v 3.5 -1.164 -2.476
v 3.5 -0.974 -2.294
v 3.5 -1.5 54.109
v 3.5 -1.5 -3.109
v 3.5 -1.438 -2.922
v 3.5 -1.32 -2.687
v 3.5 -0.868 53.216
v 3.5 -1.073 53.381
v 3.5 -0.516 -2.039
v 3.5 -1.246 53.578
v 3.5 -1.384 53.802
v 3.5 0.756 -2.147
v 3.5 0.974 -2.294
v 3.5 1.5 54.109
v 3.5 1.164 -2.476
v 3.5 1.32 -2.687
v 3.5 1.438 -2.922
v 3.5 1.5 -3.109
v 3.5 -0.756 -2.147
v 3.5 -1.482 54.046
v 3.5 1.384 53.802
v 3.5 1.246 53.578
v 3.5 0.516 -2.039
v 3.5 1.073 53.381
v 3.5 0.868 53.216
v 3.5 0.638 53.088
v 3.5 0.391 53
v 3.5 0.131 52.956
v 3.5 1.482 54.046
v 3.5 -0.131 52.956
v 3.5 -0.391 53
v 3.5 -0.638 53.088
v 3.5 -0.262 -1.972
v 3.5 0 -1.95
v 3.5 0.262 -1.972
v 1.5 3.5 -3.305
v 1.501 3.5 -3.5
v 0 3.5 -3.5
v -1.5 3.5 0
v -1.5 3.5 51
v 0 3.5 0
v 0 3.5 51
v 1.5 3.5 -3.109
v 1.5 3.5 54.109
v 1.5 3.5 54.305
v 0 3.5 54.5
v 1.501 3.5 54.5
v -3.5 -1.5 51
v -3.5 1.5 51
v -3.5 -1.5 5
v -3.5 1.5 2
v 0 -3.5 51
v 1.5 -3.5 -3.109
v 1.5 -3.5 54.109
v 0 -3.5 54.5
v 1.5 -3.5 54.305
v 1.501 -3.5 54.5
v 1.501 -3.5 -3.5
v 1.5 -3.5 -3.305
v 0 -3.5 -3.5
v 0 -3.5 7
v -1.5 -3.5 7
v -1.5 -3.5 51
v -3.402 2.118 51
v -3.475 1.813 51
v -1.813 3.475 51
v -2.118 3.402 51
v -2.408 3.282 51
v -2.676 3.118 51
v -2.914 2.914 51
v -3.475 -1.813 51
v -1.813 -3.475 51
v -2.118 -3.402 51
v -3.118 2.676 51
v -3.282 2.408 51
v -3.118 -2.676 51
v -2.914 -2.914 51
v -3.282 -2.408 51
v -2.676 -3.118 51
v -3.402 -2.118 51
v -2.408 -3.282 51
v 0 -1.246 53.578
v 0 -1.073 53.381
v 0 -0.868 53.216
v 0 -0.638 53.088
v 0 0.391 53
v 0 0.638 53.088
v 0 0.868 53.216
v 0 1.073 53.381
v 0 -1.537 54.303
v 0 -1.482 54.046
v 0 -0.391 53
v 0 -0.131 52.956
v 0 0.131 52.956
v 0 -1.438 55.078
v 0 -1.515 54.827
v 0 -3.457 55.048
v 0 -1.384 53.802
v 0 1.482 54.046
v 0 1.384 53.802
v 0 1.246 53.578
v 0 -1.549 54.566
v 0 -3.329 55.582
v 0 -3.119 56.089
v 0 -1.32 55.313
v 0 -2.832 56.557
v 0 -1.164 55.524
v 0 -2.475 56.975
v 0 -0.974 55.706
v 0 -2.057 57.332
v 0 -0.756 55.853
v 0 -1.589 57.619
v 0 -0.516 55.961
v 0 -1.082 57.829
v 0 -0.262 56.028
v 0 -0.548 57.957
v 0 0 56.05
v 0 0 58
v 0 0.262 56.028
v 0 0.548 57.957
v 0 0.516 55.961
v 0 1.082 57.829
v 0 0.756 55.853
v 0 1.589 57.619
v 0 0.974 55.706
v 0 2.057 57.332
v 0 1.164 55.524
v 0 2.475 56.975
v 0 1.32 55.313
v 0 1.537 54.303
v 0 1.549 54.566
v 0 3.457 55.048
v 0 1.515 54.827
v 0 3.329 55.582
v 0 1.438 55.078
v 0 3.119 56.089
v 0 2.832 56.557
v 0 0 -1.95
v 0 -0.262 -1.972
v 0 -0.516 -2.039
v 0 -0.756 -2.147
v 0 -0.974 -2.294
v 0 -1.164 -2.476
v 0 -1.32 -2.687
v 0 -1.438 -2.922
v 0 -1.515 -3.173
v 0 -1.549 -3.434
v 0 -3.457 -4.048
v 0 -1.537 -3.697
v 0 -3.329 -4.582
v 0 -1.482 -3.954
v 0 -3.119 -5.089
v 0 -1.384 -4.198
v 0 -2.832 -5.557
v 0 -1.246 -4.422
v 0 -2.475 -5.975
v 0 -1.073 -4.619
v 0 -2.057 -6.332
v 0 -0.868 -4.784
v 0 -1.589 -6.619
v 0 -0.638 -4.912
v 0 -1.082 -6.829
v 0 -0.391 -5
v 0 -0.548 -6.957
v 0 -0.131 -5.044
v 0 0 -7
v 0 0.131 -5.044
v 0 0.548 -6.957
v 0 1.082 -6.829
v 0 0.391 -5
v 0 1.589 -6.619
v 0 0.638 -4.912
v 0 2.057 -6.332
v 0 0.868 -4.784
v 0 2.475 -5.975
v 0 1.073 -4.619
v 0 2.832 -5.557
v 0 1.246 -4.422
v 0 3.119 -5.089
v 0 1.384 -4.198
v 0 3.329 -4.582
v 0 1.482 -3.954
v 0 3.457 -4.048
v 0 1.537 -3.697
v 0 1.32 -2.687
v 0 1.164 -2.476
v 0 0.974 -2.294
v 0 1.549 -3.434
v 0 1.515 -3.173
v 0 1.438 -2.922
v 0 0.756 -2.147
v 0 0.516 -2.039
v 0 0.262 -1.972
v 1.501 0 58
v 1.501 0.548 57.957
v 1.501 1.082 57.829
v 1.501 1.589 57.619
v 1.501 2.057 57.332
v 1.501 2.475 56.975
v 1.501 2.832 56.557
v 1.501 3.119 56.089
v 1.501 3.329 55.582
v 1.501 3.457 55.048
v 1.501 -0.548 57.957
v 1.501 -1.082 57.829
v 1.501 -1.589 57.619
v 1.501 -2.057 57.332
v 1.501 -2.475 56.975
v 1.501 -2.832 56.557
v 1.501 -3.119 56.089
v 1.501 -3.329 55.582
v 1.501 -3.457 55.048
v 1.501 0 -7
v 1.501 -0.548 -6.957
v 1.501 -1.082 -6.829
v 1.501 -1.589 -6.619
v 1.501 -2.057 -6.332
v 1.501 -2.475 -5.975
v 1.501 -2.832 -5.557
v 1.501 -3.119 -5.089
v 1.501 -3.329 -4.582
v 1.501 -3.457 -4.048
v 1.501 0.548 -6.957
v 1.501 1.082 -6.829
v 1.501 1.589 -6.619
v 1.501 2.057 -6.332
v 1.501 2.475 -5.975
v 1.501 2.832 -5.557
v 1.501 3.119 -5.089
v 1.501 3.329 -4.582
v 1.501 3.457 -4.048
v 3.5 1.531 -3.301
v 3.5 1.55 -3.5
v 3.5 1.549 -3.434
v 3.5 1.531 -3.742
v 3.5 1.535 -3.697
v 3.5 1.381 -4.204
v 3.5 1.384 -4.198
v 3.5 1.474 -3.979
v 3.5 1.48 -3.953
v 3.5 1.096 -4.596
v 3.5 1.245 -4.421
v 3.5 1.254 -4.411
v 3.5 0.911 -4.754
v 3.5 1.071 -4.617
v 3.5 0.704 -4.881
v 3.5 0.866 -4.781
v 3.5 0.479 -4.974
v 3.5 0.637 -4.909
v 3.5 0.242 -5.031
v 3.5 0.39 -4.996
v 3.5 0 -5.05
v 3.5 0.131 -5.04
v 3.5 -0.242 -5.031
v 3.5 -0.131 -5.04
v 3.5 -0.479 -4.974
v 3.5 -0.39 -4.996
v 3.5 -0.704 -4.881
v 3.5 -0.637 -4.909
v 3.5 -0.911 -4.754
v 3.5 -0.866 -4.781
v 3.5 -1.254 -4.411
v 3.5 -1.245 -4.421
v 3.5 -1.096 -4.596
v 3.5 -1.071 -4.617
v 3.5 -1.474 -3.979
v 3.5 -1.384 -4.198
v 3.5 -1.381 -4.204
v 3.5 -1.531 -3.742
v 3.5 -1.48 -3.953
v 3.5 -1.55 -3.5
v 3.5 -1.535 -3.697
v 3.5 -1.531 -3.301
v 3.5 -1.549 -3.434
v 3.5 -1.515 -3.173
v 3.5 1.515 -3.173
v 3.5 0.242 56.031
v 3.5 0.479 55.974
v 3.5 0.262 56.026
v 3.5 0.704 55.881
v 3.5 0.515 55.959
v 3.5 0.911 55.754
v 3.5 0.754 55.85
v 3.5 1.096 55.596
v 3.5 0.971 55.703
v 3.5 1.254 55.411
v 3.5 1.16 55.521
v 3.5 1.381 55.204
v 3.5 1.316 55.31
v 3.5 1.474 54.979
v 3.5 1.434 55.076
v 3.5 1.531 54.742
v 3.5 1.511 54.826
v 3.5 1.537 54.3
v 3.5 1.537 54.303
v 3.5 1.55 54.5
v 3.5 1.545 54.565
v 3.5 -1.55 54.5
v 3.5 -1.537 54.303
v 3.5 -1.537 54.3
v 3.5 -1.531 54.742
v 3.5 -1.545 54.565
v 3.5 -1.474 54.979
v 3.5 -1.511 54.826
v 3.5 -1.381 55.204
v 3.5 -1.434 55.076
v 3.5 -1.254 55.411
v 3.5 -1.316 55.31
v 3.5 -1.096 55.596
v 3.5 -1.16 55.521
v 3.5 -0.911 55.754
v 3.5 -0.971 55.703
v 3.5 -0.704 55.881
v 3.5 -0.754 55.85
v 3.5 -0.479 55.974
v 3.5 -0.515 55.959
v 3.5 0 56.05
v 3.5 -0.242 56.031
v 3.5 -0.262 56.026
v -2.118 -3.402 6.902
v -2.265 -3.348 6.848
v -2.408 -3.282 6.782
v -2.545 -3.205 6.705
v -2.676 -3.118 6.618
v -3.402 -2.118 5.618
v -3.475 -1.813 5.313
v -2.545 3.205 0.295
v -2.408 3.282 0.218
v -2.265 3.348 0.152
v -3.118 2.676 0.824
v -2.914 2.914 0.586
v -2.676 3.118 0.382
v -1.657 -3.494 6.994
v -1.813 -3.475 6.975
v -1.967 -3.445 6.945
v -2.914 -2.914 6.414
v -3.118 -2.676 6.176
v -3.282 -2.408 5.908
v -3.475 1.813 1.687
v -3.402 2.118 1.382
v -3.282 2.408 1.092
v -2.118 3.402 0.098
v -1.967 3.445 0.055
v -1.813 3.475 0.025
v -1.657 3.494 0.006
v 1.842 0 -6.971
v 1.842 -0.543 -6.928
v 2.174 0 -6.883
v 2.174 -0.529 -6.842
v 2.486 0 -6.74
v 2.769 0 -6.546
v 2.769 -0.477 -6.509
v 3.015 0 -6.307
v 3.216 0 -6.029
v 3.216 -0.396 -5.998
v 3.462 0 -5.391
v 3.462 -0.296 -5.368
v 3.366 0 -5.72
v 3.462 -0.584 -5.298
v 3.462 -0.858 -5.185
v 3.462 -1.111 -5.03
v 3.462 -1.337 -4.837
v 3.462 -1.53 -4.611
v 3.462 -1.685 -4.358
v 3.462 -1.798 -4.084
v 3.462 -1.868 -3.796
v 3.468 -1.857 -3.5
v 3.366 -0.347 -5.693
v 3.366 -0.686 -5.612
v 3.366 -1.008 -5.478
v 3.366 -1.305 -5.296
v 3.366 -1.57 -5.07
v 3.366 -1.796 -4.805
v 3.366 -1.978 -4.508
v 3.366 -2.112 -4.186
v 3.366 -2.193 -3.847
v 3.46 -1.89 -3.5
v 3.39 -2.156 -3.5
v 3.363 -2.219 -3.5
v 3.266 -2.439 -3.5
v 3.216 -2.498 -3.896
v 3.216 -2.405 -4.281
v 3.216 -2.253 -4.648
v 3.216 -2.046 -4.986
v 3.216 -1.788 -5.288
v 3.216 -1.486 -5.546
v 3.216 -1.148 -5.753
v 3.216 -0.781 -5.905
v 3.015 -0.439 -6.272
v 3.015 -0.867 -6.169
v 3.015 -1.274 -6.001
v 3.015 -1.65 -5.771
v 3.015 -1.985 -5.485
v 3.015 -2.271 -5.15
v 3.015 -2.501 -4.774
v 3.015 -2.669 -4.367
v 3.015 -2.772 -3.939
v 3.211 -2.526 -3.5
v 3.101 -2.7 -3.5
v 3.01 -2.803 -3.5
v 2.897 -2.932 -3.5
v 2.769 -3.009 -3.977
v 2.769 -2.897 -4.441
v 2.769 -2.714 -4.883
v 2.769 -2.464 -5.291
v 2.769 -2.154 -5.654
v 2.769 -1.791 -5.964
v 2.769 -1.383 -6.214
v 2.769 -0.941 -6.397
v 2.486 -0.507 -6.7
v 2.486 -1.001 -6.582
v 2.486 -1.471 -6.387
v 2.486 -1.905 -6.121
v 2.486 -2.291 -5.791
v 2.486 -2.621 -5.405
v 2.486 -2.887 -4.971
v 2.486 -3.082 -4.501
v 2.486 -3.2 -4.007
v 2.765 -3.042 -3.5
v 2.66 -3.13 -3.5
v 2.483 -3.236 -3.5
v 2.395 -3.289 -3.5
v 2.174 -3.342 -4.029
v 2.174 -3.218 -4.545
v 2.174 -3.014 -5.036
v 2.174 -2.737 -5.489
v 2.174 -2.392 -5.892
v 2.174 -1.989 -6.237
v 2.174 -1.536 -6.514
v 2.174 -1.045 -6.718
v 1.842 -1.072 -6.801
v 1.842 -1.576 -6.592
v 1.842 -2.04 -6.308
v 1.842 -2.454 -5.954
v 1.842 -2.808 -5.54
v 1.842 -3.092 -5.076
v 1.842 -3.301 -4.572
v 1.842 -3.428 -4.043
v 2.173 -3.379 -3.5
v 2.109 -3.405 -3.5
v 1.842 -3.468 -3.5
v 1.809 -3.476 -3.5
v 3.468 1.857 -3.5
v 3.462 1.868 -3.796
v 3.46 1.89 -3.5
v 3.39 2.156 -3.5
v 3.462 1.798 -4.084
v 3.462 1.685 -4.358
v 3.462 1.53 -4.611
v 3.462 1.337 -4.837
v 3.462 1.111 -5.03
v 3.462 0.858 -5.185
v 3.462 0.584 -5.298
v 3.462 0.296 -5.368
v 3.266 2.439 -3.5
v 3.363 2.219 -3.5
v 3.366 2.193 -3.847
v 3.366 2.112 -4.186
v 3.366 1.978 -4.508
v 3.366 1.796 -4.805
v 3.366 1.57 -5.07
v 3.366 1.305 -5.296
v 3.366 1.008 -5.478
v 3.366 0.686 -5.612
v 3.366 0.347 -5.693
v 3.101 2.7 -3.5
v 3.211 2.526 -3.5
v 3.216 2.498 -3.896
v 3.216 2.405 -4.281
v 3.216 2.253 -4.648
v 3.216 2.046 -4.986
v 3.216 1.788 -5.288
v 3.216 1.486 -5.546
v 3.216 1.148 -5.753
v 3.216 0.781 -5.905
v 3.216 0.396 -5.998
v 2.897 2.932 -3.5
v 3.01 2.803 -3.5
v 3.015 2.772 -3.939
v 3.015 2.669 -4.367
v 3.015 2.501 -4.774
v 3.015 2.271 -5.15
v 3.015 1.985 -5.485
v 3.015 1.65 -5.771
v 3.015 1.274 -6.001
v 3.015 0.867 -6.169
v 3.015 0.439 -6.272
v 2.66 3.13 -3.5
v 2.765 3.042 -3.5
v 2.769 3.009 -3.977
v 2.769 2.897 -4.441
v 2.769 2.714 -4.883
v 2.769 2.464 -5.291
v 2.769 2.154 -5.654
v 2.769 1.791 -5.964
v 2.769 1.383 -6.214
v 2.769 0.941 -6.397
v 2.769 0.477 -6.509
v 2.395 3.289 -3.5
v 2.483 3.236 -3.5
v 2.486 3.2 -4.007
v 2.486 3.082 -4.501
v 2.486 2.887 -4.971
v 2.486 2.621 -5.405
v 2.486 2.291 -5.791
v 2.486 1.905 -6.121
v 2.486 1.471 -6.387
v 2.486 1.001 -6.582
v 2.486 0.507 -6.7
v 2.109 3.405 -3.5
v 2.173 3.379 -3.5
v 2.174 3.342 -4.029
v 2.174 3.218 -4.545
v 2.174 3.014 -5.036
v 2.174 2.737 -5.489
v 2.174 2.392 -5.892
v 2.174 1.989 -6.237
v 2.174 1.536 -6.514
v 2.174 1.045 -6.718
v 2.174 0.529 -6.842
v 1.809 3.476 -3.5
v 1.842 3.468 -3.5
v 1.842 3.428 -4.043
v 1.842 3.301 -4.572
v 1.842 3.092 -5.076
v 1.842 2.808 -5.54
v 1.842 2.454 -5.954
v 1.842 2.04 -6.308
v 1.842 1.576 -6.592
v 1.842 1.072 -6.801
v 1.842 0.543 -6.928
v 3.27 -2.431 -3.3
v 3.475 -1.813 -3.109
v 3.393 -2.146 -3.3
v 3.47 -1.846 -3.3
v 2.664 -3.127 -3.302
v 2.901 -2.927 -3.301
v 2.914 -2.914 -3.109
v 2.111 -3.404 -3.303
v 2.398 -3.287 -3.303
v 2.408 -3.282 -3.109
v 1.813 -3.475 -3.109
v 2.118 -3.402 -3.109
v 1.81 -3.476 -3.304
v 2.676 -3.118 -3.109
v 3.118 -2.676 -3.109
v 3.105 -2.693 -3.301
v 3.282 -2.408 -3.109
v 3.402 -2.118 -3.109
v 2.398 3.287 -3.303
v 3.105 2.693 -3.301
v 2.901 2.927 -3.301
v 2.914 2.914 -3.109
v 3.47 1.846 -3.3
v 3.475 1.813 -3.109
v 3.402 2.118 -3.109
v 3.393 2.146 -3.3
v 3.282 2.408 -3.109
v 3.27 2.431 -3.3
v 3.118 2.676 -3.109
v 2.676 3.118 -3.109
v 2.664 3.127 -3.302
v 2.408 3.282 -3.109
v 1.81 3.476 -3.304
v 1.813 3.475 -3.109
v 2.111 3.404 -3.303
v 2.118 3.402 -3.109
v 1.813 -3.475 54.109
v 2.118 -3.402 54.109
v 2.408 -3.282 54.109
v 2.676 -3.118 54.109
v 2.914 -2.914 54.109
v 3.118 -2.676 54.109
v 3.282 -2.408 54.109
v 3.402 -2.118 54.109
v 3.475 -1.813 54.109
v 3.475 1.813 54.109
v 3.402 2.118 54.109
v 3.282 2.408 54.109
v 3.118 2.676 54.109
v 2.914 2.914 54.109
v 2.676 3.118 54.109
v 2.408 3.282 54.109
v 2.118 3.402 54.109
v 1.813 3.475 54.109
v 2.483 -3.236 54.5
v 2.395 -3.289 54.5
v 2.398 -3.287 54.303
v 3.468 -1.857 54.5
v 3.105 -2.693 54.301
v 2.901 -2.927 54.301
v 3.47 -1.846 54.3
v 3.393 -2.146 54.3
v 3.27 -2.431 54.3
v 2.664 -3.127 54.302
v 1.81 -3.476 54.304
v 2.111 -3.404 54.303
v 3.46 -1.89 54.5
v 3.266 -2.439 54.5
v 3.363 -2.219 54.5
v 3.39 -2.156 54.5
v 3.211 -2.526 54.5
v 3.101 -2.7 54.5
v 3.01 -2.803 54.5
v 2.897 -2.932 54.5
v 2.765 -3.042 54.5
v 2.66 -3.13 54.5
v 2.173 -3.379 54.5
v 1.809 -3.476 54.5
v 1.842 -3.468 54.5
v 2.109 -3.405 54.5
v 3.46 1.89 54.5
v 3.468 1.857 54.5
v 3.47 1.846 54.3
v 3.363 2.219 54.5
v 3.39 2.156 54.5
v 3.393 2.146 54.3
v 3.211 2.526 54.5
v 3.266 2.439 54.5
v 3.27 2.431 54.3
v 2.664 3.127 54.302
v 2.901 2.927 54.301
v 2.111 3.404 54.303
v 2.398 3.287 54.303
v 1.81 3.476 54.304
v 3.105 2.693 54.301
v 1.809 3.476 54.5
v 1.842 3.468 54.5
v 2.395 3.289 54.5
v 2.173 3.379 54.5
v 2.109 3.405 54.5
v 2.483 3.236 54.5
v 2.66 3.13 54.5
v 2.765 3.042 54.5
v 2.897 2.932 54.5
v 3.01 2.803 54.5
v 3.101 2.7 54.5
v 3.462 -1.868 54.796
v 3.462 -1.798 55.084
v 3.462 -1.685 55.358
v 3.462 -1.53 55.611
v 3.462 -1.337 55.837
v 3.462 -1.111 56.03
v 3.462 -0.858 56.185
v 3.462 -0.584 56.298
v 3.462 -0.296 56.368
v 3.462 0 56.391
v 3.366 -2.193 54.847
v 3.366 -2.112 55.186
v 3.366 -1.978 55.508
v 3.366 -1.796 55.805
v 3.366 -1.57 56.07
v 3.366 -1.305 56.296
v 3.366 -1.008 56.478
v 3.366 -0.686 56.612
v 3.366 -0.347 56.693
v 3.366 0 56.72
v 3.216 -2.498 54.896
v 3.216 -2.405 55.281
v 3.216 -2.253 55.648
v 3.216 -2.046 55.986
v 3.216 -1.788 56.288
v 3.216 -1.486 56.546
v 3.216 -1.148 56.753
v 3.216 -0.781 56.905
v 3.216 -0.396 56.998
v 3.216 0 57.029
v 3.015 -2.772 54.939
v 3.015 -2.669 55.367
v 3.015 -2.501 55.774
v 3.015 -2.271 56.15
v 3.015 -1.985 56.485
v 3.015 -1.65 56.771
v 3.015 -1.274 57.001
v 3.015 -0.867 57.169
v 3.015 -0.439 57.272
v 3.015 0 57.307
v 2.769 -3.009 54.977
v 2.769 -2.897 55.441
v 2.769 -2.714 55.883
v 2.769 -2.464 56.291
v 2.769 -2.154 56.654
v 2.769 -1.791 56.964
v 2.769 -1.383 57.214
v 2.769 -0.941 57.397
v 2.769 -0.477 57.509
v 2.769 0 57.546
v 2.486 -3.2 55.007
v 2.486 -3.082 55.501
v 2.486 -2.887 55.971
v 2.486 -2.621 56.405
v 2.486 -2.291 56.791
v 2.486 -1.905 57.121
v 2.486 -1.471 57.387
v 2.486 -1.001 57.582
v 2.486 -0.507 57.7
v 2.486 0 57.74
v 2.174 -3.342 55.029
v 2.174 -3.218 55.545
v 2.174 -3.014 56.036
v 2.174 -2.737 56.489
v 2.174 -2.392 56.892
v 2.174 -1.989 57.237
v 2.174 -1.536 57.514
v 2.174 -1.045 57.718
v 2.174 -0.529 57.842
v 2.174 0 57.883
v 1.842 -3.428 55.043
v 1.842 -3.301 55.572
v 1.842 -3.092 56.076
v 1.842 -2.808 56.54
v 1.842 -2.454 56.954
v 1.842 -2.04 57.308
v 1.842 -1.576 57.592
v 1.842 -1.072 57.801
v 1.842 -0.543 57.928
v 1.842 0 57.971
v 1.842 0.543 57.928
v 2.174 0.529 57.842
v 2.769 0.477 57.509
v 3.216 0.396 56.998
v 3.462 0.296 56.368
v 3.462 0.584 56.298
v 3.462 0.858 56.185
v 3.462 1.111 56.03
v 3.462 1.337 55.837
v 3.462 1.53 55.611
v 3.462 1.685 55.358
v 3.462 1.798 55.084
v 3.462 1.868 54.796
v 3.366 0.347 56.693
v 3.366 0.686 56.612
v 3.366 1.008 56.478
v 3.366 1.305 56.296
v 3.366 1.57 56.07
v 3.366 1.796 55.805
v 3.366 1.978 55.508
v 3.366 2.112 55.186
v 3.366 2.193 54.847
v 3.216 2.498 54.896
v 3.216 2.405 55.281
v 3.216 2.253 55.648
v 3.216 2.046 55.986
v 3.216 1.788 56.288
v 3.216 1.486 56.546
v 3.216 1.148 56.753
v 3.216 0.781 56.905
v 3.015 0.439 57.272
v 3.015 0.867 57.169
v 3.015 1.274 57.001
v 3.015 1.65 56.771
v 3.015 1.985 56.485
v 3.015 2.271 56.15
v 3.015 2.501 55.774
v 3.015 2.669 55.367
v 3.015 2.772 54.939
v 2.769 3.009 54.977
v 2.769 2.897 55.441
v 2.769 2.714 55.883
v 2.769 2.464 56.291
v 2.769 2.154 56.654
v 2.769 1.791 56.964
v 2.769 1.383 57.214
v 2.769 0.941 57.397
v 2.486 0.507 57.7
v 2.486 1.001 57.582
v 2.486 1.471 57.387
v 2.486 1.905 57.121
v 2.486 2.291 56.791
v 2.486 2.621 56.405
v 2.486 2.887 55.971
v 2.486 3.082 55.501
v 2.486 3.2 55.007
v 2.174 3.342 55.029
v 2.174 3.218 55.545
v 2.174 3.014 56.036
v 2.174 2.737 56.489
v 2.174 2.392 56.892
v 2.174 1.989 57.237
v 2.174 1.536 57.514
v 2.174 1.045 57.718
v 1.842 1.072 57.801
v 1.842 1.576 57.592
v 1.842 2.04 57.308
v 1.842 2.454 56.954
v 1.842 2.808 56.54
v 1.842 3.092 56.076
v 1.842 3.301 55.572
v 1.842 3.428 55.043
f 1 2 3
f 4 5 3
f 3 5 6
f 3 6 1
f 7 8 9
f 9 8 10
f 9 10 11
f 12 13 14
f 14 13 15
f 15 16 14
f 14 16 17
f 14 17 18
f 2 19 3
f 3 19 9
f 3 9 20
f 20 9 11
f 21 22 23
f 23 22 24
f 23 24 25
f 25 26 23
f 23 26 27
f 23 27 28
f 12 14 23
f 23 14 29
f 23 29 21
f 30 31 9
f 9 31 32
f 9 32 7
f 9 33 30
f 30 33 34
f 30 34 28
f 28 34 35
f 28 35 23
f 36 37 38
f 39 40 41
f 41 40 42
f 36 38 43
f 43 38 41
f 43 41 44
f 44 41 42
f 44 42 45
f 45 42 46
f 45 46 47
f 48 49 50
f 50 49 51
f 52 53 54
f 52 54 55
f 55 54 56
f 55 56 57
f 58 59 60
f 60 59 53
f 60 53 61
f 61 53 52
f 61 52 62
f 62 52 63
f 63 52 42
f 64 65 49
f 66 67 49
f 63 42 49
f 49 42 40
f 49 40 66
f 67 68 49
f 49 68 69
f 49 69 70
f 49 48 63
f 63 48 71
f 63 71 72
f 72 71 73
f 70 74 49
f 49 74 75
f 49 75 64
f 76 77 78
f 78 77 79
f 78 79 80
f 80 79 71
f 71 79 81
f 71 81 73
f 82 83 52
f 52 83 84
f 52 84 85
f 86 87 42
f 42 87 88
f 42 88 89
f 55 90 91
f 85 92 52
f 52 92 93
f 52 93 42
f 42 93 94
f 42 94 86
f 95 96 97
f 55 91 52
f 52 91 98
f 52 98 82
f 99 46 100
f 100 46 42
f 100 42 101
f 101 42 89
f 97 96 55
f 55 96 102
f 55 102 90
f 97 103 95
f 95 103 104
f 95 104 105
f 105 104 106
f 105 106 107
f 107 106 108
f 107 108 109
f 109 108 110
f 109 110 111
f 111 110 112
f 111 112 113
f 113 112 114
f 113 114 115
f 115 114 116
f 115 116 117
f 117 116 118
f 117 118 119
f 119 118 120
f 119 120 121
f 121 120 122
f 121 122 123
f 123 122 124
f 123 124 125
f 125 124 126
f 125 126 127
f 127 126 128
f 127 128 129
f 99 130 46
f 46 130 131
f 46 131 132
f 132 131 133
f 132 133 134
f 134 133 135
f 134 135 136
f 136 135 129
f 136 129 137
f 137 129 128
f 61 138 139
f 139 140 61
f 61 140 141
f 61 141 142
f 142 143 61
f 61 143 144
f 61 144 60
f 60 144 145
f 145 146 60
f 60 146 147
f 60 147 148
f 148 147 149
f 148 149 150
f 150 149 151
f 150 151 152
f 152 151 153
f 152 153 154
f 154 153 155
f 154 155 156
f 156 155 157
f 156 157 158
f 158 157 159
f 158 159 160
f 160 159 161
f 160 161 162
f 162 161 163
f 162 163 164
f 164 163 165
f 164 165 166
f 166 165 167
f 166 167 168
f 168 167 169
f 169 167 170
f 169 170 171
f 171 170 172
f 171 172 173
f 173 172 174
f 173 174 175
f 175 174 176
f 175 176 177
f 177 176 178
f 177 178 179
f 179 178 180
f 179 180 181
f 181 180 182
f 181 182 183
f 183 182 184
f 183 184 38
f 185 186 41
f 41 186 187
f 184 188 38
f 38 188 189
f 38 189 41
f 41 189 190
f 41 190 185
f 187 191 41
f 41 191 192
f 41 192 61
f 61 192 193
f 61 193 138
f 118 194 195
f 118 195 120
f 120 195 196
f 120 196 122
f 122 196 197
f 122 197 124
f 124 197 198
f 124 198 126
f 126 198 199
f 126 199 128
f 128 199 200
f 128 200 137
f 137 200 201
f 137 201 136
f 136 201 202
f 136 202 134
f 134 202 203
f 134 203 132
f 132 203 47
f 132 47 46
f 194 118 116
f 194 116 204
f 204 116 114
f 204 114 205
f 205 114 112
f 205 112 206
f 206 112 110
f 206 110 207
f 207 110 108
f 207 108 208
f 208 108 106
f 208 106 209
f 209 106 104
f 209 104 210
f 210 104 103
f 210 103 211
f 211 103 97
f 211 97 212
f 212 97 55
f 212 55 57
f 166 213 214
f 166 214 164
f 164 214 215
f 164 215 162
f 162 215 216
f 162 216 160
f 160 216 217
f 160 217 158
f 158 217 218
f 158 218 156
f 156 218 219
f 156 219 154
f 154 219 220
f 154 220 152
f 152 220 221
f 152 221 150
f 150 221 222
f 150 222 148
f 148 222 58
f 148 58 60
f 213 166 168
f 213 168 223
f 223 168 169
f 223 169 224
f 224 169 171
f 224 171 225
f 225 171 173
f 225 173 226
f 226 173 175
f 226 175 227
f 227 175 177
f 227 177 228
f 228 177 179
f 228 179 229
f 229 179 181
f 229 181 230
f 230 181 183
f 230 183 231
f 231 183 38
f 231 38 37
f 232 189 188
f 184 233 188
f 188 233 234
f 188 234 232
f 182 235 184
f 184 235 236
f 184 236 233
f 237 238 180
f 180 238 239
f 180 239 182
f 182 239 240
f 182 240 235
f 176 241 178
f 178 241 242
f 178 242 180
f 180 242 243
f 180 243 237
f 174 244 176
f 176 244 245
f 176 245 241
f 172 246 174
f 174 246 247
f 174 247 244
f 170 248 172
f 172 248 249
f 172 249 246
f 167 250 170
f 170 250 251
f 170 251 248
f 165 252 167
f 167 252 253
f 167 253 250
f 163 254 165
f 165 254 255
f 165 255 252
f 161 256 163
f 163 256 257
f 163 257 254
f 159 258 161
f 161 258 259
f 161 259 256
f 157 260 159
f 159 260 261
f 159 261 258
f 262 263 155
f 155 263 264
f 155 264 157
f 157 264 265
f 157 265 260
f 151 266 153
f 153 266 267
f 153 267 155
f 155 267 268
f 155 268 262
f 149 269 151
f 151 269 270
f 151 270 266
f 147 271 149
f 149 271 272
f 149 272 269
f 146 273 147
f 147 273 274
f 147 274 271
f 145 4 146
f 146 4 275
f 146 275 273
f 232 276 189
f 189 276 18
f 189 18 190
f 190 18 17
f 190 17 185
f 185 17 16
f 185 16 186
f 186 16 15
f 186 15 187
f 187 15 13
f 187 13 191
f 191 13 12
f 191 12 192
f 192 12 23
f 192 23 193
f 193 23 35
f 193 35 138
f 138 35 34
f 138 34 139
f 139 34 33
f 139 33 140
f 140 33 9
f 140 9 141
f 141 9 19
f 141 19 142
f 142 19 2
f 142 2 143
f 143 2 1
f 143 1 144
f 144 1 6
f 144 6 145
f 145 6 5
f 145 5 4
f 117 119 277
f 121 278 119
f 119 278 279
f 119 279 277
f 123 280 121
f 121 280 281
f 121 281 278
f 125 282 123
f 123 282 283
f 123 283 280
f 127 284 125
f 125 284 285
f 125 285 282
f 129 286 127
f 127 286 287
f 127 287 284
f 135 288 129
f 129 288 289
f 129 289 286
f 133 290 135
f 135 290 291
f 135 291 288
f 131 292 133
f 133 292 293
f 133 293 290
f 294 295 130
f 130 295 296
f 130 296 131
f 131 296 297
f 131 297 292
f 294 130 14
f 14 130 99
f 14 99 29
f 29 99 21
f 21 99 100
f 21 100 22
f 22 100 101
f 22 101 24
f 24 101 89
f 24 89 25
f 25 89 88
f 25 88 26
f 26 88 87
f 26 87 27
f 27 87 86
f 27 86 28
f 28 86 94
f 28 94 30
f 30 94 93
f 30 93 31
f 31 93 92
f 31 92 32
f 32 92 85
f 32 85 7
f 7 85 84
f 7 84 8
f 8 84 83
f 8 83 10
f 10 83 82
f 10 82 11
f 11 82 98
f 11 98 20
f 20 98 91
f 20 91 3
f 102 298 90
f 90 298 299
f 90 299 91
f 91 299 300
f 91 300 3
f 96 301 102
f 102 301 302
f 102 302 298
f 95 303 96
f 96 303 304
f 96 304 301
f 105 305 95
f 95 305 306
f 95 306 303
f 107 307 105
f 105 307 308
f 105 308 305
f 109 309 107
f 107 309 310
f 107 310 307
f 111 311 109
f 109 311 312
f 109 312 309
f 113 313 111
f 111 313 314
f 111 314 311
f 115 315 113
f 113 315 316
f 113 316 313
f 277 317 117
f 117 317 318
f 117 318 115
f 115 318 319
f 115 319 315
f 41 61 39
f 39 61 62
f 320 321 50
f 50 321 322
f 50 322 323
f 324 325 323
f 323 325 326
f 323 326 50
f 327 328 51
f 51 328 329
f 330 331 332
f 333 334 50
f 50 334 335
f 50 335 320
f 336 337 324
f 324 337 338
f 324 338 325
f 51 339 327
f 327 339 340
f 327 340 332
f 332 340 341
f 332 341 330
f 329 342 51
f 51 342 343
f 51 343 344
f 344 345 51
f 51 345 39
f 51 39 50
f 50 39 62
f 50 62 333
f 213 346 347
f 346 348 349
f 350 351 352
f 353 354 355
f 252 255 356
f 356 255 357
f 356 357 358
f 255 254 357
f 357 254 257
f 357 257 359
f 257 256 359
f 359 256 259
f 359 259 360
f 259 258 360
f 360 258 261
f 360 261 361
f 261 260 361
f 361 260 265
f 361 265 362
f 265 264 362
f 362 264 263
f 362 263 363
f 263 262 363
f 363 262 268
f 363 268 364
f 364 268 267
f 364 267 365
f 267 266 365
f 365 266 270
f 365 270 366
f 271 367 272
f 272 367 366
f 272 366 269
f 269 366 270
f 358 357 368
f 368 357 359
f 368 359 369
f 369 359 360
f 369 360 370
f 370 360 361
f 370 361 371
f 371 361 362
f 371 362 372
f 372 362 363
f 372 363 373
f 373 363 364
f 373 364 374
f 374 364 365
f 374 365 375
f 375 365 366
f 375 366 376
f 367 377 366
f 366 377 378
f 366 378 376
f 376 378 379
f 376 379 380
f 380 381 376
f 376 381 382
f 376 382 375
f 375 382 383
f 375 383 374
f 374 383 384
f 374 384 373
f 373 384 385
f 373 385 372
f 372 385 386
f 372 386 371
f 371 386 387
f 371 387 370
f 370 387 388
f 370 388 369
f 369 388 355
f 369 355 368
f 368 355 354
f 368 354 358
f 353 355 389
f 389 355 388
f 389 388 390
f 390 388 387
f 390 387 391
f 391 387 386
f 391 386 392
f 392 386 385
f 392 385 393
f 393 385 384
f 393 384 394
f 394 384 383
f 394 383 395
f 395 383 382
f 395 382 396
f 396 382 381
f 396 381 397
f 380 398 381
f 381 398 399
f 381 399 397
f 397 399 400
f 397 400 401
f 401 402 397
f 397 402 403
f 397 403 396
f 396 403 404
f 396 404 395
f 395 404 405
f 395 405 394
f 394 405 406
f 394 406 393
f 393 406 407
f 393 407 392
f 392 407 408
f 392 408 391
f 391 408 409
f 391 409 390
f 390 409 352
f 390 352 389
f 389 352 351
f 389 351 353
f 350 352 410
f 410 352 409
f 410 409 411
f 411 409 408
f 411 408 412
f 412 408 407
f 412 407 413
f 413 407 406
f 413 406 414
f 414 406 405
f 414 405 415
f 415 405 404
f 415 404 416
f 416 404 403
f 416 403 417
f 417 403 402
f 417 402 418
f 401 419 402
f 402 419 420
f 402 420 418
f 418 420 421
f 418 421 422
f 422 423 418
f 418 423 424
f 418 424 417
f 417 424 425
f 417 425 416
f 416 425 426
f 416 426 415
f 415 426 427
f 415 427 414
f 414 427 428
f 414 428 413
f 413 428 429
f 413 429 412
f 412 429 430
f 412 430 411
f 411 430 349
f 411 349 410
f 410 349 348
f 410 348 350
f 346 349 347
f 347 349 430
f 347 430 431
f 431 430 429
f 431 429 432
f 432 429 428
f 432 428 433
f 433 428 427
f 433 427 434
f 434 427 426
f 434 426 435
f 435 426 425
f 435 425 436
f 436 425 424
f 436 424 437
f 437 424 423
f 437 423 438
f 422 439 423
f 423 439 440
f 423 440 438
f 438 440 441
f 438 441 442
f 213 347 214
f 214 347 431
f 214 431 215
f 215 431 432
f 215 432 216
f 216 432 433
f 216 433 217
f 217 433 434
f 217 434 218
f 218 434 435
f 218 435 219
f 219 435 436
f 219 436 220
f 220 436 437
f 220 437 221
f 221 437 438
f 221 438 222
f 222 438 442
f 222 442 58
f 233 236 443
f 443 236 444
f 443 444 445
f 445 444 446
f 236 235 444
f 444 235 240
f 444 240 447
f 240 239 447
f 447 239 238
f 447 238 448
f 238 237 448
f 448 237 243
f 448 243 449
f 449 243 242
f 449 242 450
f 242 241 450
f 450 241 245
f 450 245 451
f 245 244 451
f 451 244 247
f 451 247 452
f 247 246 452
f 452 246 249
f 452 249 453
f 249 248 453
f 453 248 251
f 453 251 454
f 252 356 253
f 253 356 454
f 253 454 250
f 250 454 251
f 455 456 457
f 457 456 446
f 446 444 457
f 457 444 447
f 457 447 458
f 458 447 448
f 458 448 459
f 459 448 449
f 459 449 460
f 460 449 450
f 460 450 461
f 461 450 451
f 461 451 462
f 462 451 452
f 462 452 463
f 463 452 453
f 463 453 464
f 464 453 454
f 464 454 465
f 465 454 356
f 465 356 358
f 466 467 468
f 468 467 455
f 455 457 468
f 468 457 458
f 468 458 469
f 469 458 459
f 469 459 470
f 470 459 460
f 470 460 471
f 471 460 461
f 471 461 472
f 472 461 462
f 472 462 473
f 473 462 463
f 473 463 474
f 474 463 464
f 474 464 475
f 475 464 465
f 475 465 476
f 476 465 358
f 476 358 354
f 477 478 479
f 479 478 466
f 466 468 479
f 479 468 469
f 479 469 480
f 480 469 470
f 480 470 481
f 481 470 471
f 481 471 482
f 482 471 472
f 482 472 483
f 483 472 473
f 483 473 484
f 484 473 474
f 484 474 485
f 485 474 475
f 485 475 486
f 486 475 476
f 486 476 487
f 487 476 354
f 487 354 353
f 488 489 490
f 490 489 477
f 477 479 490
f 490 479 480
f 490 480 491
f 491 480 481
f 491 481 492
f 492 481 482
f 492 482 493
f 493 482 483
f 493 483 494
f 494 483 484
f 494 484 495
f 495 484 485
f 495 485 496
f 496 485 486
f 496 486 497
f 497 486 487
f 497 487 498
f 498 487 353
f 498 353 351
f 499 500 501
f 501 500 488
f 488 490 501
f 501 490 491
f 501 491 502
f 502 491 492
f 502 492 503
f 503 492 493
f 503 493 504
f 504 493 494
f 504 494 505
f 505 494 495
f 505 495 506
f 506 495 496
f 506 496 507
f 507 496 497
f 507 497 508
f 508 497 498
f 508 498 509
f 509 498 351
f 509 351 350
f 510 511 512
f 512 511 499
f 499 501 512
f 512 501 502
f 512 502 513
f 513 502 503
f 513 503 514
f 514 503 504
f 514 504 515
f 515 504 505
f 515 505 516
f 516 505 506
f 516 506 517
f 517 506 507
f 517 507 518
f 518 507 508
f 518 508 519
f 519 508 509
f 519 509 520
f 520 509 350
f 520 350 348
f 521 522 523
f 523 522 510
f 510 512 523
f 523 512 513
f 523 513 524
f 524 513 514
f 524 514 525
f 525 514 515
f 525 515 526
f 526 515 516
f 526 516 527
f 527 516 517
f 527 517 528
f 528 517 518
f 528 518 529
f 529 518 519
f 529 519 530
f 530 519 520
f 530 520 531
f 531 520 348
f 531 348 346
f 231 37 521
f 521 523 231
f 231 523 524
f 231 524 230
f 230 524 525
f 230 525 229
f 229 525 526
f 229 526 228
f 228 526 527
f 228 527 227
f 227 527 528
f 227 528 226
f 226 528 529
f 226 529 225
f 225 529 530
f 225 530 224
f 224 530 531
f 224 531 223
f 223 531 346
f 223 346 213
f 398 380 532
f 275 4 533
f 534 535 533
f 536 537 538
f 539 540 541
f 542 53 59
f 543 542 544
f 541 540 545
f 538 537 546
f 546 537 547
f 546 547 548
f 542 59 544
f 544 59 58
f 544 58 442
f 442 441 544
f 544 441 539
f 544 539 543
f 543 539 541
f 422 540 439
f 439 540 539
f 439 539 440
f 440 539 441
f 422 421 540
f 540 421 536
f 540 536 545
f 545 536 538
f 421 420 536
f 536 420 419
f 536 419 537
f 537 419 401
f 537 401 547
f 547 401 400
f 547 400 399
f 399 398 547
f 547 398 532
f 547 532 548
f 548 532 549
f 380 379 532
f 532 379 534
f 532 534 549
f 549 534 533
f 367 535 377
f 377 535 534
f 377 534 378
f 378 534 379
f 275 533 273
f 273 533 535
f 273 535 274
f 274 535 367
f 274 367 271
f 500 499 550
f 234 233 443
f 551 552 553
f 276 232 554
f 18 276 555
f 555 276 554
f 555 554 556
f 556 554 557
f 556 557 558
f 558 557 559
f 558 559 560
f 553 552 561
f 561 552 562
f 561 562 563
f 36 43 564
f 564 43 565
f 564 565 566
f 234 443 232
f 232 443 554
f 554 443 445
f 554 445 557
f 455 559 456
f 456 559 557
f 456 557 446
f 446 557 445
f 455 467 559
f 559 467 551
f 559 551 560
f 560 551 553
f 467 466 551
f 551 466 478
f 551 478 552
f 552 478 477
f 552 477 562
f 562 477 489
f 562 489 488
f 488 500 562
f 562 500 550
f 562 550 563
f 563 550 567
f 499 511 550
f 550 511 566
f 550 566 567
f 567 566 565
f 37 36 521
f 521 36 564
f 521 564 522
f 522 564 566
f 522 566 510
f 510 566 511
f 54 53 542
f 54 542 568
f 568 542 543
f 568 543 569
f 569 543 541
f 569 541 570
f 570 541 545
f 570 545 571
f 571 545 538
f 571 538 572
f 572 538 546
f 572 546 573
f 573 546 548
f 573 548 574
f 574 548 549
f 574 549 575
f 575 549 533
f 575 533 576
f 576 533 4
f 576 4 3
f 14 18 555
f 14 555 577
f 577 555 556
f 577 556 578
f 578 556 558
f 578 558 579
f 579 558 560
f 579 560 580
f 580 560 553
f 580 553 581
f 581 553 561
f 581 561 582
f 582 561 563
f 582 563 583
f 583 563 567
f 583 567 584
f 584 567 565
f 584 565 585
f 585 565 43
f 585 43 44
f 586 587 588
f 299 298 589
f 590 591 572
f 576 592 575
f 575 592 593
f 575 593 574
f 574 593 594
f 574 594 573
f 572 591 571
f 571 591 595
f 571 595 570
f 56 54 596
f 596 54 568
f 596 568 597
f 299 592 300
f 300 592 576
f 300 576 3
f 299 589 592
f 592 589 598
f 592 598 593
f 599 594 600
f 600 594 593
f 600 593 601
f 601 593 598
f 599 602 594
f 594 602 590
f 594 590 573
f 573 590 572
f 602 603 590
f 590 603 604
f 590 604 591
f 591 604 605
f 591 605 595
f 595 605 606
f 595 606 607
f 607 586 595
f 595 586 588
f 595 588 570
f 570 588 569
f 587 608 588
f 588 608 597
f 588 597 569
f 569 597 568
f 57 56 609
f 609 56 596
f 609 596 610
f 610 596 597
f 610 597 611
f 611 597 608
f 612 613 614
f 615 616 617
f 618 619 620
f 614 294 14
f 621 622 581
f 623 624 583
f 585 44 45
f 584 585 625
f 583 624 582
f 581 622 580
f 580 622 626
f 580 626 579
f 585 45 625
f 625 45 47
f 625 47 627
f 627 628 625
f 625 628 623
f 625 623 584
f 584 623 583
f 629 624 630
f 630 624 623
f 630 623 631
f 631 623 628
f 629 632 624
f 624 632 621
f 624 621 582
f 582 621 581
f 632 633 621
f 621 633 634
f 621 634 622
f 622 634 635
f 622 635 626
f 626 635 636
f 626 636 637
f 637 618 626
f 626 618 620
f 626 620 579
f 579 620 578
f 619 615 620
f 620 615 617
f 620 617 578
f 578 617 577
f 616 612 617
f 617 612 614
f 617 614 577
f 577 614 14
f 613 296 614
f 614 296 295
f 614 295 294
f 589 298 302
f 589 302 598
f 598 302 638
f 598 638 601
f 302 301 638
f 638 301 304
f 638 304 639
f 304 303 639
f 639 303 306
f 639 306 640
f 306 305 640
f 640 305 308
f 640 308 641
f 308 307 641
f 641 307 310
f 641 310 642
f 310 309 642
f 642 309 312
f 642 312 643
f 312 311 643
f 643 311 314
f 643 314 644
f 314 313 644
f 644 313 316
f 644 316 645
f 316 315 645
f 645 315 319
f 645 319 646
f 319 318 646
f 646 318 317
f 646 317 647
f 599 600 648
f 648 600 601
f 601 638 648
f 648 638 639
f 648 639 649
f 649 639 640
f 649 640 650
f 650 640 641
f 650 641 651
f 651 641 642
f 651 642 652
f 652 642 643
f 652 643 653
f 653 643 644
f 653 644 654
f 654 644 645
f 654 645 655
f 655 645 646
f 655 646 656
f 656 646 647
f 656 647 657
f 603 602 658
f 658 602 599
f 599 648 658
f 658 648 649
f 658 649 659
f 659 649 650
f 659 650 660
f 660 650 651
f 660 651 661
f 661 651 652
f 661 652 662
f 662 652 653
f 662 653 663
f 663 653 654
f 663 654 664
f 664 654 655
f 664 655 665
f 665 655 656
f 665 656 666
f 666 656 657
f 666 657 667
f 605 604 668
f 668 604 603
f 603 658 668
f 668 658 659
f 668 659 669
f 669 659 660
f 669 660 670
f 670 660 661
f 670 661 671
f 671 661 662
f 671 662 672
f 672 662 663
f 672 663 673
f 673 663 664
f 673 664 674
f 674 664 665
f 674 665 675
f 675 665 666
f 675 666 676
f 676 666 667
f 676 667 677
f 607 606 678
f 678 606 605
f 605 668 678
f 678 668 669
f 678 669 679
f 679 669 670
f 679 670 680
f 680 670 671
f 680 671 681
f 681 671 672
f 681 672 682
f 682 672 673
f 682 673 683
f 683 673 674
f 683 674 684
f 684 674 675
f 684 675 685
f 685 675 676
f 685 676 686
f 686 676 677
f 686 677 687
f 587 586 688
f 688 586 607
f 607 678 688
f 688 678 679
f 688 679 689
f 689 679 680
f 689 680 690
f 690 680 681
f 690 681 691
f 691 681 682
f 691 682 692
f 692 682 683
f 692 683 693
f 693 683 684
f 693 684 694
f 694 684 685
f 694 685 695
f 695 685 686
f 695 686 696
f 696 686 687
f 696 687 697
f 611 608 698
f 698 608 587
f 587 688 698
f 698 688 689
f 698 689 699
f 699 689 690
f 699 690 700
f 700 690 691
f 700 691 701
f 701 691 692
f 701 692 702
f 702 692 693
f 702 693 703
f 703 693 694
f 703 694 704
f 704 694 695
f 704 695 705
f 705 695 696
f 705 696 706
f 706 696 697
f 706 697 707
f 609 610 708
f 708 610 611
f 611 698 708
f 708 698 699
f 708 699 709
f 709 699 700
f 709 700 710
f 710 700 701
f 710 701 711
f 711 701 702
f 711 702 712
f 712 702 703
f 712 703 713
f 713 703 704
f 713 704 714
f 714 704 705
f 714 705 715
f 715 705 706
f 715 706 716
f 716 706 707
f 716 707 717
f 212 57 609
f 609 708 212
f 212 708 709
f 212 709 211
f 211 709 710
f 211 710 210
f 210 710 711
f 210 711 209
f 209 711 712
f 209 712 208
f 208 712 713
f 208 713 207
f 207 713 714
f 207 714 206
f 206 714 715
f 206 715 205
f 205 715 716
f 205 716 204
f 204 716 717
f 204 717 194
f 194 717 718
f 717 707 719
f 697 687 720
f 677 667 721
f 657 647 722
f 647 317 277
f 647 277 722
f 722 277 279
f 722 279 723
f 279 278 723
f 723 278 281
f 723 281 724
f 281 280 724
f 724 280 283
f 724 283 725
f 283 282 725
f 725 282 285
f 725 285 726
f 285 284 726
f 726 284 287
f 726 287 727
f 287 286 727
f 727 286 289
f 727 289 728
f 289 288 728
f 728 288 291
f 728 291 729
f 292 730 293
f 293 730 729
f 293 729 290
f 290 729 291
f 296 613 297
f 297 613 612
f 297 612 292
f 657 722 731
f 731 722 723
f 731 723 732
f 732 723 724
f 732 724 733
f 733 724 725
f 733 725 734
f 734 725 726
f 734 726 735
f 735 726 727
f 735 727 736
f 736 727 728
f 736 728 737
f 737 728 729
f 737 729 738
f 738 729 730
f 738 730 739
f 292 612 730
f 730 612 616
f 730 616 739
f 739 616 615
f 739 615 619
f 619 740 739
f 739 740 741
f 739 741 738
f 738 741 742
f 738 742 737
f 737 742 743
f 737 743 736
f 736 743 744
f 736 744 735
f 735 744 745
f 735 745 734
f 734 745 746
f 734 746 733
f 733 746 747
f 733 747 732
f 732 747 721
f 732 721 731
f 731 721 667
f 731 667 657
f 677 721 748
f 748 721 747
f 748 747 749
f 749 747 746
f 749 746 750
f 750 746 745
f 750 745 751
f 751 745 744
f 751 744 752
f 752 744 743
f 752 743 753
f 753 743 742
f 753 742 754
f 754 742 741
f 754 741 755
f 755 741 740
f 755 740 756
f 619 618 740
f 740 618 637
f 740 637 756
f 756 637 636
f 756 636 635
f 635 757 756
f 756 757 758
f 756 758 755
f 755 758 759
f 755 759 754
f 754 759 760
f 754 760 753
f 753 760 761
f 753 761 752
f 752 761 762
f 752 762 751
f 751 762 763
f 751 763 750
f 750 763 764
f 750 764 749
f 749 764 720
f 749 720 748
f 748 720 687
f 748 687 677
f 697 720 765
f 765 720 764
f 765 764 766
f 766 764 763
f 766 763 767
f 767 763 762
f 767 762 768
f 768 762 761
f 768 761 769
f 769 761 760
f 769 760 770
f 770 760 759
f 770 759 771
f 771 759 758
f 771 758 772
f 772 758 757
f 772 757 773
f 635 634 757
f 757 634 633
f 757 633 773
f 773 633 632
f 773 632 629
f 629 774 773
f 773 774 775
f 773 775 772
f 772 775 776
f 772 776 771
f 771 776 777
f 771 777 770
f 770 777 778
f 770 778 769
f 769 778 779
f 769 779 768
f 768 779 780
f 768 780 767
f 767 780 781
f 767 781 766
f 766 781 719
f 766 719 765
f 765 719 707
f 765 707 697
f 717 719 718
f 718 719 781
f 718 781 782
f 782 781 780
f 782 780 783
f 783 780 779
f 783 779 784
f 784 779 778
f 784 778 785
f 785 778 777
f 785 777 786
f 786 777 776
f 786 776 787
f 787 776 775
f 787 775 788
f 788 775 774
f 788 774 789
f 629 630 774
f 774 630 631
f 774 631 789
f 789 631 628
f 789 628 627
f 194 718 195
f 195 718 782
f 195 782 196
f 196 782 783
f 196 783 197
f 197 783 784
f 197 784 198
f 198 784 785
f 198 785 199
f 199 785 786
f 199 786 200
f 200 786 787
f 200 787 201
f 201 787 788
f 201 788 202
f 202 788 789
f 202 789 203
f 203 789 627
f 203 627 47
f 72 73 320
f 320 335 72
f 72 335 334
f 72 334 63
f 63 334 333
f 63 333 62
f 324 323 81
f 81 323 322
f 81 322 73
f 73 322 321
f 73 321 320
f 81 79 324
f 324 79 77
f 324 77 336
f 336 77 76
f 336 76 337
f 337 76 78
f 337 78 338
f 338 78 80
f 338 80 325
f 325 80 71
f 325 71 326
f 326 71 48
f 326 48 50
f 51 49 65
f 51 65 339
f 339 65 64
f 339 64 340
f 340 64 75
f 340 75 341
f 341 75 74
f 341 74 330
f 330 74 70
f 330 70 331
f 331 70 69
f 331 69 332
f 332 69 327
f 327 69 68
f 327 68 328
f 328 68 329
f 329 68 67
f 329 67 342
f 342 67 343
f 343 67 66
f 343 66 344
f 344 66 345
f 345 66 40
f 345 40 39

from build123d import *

# Parameters (mm, degrees)
SKETCH_1_W          = 7
SKETCH_1_H          = 7
EXTRUDE_1_DEPTH     = 51
SKETCH_2_W          = 3.5
SKETCH_2_H          = 7
EXTRUDE_2_DEPTH     = 7
SKETCH_3_W          = 3.5
SKETCH_3_H          = 7
EXTRUDE_3_DEPTH     = 7
FILLET_1_R          = 3.5
SKETCH_4_R          = 1.55
CUT_EXTRUDE_1_DEPTH = 3.5
CUT_EXTRUDE_2_DEPTH = 3.5
FILLET_2_R          = 2


with BuildPart() as part:
    # 草图1 → 凸台-拉伸1 (new body)
    with BuildSketch(Plane.XY):
        Rectangle(SKETCH_1_W, SKETCH_1_H)
    extrude(amount=EXTRUDE_1_DEPTH)

    # 草图2 → 凸台-拉伸2 (add)
    with BuildSketch(Plane.XY.offset(51)):
        with Locations((1.75, 0)):
            Rectangle(SKETCH_2_W, SKETCH_2_H)
    extrude(amount=EXTRUDE_2_DEPTH)

    # 草图3 → 凸台-拉伸3 (add)
    with BuildSketch(Plane(origin=(0, 0, 0), x_dir=(-1, 0, 0), z_dir=(0, 0, -1))):
        with Locations((-1.75, 0)):
            Rectangle(SKETCH_3_W, SKETCH_3_H)
    extrude(amount=EXTRUDE_3_DEPTH)

    # 圆角1
    fillet_1_edges = [part.edges().sort_by_distance(p)[0] for p in [
        (1.75, -3.5, 58),
        (1.75, 3.5, 58),
        (1.75, 3.5, -7),
        (1.75, -3.5, -7),
    ]]
    fillet(fillet_1_edges, radius=FILLET_1_R - 0.0001)  # a hair under: the kernel refuses the full size

    # 草图4 → 切除-拉伸1 (cut)
    with BuildSketch(Plane.ZY):
        with Locations((54.5, 0)):
            Circle(SKETCH_4_R)
        with Locations((-3.5, 0)):
            Circle(SKETCH_4_R)
    extrude(amount=-CUT_EXTRUDE_1_DEPTH, mode=Mode.SUBTRACT)

    # 草图5 → 切除-拉伸2 (cut)
    with BuildSketch(Plane.ZY.offset(3.5)):
        Polygon((0, 3.5), (7, -3.5), (0, -3.5), align=None)
    extrude(amount=-CUT_EXTRUDE_2_DEPTH, mode=Mode.SUBTRACT)

    # 圆角2
    fillet_2_edges = [part.edges().sort_by_distance(p)[0] for p in [
        (3.5, -3.5, 25.5),
        (-3.5, -3.5, 29),
        (3.5, 3.5, 25.5),
        (-3.5, 3.5, 25.5),
    ]]
    fillet(fillet_2_edges, radius=FILLET_2_R)


solid = part.part
